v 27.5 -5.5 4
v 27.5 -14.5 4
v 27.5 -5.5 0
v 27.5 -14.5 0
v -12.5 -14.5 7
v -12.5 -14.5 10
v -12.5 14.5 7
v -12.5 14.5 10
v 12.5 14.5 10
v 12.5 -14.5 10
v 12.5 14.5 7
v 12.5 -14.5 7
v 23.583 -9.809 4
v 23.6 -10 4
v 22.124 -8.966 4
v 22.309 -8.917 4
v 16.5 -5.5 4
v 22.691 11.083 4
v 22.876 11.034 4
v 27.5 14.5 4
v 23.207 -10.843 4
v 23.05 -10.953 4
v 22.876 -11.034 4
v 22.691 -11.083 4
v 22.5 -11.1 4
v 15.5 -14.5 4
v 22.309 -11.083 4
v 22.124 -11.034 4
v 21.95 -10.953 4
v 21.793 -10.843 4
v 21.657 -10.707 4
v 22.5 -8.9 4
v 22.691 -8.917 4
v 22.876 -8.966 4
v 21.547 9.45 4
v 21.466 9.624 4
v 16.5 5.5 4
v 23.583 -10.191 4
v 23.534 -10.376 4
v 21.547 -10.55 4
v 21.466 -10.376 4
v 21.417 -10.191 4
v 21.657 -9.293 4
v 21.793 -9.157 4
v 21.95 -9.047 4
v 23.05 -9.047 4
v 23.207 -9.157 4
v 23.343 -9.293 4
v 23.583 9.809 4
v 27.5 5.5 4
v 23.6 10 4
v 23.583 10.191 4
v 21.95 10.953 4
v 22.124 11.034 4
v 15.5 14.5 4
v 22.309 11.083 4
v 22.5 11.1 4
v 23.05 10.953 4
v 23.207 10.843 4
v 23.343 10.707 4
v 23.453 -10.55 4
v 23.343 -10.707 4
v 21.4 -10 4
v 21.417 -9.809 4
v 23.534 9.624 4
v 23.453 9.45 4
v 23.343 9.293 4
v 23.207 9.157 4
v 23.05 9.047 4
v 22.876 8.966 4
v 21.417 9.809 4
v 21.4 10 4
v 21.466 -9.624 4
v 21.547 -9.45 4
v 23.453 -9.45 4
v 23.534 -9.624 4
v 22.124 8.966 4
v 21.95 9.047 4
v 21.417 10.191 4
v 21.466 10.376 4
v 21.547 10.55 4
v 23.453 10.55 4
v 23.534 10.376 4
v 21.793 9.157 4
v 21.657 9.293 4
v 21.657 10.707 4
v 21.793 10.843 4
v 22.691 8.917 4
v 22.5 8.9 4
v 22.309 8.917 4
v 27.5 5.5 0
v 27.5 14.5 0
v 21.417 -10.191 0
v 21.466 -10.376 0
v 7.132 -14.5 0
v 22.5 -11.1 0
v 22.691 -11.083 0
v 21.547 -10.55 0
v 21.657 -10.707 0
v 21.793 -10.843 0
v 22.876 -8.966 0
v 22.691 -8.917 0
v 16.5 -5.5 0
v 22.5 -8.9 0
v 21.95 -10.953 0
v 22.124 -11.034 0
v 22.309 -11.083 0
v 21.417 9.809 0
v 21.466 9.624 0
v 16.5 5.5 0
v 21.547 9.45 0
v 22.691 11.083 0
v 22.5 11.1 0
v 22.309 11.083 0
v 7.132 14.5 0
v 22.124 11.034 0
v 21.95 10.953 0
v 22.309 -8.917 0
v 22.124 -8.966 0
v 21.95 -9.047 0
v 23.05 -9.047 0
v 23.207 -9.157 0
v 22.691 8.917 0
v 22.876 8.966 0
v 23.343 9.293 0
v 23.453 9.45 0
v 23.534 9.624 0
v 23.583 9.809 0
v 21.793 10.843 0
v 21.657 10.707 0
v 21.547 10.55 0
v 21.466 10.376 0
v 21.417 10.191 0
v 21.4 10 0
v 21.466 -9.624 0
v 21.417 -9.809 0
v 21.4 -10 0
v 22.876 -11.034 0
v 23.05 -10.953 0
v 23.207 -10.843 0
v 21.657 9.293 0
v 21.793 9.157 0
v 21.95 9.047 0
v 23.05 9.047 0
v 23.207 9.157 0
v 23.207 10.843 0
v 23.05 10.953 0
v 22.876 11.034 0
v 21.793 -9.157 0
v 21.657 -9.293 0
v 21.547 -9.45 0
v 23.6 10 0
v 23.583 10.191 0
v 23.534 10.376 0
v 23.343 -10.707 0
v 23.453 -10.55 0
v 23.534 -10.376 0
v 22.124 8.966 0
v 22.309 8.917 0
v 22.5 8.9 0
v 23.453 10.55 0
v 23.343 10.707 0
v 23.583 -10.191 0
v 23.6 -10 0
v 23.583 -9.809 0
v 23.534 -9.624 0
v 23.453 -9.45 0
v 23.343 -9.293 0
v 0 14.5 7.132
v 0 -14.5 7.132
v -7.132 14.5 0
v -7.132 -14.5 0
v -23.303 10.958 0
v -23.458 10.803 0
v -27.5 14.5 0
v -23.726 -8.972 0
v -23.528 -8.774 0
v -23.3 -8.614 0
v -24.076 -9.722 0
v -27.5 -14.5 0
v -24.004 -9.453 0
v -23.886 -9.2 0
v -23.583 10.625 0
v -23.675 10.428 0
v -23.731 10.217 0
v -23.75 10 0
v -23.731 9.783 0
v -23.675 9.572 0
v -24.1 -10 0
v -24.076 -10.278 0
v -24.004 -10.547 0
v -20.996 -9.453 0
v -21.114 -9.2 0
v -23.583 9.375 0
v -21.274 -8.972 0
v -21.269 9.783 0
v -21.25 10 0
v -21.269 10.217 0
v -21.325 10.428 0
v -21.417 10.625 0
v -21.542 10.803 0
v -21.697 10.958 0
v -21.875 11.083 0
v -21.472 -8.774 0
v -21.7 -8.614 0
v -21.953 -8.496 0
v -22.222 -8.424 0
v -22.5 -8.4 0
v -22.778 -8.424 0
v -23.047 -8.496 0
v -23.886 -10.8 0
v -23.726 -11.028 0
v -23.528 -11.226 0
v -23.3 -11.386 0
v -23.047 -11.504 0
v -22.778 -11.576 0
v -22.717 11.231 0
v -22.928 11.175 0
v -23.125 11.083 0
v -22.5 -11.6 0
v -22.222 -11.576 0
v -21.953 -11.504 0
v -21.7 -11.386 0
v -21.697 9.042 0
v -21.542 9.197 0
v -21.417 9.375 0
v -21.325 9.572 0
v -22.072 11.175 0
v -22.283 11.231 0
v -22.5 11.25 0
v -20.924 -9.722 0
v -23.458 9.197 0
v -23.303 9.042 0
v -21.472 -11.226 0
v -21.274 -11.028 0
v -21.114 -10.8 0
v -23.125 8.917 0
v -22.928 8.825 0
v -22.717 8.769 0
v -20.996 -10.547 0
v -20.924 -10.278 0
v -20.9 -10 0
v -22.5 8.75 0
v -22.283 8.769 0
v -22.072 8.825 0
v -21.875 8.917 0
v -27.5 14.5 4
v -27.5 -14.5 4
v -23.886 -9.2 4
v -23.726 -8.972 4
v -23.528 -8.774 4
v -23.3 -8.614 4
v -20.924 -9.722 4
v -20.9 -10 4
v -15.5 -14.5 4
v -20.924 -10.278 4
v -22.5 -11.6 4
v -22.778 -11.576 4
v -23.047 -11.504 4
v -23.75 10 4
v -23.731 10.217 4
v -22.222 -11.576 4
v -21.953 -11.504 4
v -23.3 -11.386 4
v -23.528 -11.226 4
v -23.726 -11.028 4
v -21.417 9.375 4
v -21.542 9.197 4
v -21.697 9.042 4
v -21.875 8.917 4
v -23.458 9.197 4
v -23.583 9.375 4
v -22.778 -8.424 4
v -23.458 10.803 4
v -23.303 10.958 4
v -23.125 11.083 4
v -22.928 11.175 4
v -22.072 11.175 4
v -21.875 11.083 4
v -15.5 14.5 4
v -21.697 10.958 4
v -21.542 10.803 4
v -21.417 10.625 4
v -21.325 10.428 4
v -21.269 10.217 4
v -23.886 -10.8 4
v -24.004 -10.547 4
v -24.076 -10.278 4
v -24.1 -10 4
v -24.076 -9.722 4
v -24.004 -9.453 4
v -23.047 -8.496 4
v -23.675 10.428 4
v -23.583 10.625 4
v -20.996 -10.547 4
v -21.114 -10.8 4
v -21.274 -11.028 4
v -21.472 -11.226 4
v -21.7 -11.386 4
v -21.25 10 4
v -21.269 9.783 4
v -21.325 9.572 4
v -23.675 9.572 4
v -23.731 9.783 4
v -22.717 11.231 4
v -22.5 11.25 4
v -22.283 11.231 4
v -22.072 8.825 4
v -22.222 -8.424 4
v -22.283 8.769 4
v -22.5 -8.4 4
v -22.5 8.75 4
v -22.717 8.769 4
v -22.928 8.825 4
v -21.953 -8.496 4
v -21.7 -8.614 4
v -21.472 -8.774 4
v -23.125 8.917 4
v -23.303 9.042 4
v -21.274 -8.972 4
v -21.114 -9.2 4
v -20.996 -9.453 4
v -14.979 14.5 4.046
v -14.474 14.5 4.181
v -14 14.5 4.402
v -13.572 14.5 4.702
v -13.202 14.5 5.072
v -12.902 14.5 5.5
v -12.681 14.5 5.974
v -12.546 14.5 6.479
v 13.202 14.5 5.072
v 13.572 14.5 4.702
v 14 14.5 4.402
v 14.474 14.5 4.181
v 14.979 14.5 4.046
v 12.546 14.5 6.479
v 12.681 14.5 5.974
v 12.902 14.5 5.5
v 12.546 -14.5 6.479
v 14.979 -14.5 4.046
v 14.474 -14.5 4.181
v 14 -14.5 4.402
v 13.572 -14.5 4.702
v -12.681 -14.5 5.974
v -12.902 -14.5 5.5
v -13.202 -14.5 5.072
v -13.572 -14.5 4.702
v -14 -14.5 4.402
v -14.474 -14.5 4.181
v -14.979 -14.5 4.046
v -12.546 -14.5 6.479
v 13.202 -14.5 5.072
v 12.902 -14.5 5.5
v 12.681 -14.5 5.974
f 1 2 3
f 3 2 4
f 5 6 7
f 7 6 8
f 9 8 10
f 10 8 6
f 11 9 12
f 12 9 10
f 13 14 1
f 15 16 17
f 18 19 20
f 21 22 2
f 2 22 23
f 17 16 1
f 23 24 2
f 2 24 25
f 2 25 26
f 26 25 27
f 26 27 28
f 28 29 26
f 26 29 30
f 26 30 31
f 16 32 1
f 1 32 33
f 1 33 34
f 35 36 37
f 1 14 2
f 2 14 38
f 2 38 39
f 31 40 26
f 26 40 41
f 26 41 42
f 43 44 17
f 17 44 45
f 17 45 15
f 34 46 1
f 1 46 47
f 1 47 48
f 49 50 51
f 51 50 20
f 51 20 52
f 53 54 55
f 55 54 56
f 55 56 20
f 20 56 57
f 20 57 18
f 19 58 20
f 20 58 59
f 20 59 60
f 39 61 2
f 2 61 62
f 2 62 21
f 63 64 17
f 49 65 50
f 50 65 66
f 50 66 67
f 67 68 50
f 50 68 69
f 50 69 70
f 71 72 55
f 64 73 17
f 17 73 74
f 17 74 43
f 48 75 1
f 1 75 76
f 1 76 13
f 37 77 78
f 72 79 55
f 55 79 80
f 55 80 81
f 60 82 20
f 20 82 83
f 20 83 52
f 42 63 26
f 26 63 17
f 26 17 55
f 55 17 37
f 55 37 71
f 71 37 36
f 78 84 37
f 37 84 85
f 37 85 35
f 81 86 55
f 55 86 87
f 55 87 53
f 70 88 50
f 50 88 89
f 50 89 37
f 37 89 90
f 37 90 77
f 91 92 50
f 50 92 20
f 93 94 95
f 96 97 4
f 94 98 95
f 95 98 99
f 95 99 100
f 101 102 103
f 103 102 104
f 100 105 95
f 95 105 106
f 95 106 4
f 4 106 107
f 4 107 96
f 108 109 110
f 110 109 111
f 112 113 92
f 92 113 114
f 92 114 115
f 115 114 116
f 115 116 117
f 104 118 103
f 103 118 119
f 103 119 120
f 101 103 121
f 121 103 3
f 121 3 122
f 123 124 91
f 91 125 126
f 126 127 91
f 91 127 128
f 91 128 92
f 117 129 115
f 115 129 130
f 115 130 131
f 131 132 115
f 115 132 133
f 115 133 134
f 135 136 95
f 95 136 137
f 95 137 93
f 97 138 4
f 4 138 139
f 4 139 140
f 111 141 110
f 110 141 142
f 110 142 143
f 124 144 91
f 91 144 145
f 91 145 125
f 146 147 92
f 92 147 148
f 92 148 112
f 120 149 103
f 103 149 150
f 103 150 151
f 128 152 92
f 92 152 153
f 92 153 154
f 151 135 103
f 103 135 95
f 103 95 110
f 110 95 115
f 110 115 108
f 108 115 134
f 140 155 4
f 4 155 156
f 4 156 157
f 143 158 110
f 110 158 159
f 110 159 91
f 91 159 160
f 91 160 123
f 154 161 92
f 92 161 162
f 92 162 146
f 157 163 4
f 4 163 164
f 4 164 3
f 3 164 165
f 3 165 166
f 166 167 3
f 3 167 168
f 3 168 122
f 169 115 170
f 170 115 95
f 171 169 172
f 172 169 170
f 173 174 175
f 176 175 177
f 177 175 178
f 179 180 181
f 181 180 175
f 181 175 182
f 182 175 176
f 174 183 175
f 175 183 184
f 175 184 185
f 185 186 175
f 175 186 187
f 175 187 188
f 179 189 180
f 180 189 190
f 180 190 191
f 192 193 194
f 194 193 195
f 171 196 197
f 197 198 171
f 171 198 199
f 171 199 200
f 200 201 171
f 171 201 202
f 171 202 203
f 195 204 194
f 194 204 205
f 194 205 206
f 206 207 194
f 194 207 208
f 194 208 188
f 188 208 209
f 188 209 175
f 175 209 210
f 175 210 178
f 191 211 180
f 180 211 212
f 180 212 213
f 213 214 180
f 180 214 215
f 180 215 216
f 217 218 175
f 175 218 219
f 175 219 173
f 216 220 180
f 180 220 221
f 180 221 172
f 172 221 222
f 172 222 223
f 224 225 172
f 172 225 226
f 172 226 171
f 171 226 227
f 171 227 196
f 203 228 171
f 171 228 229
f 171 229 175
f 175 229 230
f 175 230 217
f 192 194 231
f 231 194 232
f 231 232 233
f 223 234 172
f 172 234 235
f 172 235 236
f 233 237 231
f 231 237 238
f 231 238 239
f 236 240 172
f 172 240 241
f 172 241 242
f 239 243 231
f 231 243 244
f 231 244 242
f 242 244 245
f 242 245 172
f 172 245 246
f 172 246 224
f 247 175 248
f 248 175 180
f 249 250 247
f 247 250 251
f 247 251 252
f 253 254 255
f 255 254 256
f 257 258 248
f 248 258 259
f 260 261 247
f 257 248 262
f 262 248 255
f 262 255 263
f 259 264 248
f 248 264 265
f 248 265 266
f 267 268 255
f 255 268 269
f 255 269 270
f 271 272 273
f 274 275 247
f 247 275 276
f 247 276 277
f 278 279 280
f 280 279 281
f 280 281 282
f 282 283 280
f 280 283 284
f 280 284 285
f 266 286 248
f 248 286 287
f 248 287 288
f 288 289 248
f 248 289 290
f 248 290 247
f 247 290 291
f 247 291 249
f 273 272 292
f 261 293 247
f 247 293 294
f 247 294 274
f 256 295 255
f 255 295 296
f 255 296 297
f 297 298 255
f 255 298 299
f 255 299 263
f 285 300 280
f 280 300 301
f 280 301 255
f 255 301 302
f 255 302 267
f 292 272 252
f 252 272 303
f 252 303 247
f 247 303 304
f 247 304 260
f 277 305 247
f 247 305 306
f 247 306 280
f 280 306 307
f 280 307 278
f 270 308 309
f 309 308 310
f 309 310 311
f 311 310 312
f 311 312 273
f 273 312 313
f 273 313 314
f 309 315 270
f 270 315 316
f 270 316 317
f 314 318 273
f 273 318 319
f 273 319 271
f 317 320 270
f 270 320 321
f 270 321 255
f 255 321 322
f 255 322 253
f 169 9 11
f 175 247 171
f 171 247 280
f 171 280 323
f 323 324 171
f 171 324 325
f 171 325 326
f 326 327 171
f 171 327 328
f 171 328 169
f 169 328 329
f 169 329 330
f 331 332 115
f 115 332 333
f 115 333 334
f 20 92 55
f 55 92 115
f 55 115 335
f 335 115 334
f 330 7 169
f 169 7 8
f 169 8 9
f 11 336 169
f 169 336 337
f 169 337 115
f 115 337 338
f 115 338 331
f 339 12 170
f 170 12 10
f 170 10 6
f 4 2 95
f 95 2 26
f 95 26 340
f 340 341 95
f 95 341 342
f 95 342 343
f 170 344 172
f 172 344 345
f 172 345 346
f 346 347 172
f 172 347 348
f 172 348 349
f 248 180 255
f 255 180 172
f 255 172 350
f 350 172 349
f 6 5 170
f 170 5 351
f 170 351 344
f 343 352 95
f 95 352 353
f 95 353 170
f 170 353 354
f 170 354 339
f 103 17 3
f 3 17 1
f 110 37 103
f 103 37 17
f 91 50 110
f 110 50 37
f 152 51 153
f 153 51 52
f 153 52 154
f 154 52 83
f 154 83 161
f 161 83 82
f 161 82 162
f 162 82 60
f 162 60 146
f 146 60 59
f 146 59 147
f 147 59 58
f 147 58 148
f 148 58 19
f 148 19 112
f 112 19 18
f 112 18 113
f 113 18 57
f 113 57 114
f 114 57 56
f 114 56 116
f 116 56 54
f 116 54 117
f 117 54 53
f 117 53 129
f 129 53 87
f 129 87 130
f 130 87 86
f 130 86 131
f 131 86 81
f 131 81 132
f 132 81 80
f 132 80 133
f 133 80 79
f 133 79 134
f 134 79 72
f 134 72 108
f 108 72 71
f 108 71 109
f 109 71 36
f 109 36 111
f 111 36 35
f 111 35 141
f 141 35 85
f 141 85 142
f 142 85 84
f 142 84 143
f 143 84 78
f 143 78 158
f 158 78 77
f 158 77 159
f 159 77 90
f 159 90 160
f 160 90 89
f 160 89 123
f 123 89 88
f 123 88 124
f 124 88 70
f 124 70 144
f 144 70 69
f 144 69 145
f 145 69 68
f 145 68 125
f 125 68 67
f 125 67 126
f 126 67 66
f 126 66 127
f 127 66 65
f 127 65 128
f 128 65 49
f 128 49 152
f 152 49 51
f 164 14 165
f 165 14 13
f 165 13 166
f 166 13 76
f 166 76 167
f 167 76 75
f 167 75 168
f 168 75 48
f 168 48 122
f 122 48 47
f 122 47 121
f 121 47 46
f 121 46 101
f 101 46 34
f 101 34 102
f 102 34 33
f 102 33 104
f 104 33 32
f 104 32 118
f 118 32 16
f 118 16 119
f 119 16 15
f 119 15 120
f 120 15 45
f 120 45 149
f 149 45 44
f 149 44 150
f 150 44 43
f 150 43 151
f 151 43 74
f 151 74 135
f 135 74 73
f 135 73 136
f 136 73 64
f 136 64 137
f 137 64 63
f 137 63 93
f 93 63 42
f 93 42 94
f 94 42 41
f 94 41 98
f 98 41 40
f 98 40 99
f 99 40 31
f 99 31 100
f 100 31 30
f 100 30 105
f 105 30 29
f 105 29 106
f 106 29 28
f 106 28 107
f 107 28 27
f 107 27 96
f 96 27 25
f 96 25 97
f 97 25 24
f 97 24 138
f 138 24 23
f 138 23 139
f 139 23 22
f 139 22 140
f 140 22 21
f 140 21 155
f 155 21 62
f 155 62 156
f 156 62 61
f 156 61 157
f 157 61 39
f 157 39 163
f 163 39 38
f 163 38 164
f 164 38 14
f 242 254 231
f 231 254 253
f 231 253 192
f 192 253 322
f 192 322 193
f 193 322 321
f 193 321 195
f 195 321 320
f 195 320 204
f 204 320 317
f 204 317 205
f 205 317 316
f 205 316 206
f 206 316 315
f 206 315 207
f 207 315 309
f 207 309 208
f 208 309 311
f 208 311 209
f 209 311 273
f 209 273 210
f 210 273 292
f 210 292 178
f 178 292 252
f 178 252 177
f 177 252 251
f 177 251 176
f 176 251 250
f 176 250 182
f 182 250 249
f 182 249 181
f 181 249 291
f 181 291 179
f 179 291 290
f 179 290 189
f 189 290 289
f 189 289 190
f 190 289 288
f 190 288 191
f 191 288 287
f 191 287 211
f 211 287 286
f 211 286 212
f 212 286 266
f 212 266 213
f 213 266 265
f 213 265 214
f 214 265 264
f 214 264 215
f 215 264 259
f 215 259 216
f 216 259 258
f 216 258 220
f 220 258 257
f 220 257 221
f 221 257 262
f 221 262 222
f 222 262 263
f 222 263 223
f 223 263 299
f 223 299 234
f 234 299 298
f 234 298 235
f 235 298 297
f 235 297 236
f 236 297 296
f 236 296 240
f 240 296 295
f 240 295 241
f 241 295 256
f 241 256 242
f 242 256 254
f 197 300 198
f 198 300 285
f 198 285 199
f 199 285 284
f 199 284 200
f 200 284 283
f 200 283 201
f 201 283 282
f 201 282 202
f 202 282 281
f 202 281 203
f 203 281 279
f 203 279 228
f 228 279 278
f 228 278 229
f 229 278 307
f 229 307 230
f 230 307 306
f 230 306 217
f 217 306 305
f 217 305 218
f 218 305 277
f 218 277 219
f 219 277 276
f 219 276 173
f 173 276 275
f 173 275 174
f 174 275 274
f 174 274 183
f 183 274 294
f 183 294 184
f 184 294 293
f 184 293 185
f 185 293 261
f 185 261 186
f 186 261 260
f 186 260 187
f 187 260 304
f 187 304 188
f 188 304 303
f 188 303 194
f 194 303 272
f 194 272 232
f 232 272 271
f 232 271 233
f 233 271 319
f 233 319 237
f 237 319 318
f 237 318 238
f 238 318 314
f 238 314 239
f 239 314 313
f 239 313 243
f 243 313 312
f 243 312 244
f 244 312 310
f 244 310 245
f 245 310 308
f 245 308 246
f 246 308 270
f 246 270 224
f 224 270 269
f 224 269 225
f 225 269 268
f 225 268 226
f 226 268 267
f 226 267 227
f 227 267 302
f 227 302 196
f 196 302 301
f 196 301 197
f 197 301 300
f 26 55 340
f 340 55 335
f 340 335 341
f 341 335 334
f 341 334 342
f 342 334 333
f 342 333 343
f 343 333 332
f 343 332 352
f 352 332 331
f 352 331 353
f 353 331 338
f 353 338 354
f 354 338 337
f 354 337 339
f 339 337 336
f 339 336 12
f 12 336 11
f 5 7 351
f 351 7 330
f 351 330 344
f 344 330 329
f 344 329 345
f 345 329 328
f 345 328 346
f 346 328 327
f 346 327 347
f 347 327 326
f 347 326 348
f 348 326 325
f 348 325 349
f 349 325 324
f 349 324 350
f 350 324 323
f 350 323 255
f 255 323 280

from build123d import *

# Parameters (mm, degrees)
BOSS_EXTRUDE1_DEPTH     = 14.5
CUT_EXTRUDE2_DEPTH      = 32.662280398
CUT_EXTRUDE2_DEPTH_BACK = 32.662280398
SKETCH4_R               = 1.1
SKETCH4_W               = 11
SKETCH4_H               = 11
SKETCH5_R               = 1.25
SKETCH5_R_2             = 1.6
CUT_EXTRUDE3_DEPTH      = 32.662280398
FILLET1_R               = 3


with BuildPart() as part:
    # Sketch1 → Boss-Extrude1 (new, symmetric)
    with BuildSketch(Plane(origin=(0, 0, 0), x_dir=(1, 0, 0), z_dir=(0, 1, 0))):
        Polygon((-7.131727984, 0), (-27.5, 0), (-27.5, -4), (-12.5, -4), (-12.5, -10), (12.5, -10), (12.5, -4), (27.5, -4), (27.5, 0), (7.131727984, 0), (0, -7.131727984), align=None)
    extrude(amount=BOSS_EXTRUDE1_DEPTH, both=True)

    # Sketch4 → Cut-Extrude2 (cut, two sides: drawn at the far end of the back side and taken through both)
    with BuildSketch(Plane.XY.offset(4).offset(-CUT_EXTRUDE2_DEPTH_BACK)):
        with Locations((22.5, 10)):
            Circle(SKETCH4_R)
        with Locations((22.5, -10)):
            Circle(SKETCH4_R)
        with Locations((22, 0)):
            Rectangle(SKETCH4_W, SKETCH4_H)
    extrude(amount=CUT_EXTRUDE2_DEPTH + CUT_EXTRUDE2_DEPTH_BACK, mode=Mode.SUBTRACT)

    # Sketch5 → Cut-Extrude3 (cut, through all)
    with BuildSketch(Plane.XY.offset(4)):
        with Locations((-22.5, 10)):
            Circle(SKETCH5_R)
        with Locations((-22.5, -10)):
            Circle(SKETCH5_R_2)
    extrude(amount=-CUT_EXTRUDE3_DEPTH, mode=Mode.SUBTRACT)

    # Fillet1
    fillet1_edges = [part.edges().sort_by_distance(p)[0] for p in [
        (-12.5, 0, 4),
        (12.5, 0, 4),
    ]]
    fillet(fillet1_edges, radius=FILLET1_R)


solid = part.part
